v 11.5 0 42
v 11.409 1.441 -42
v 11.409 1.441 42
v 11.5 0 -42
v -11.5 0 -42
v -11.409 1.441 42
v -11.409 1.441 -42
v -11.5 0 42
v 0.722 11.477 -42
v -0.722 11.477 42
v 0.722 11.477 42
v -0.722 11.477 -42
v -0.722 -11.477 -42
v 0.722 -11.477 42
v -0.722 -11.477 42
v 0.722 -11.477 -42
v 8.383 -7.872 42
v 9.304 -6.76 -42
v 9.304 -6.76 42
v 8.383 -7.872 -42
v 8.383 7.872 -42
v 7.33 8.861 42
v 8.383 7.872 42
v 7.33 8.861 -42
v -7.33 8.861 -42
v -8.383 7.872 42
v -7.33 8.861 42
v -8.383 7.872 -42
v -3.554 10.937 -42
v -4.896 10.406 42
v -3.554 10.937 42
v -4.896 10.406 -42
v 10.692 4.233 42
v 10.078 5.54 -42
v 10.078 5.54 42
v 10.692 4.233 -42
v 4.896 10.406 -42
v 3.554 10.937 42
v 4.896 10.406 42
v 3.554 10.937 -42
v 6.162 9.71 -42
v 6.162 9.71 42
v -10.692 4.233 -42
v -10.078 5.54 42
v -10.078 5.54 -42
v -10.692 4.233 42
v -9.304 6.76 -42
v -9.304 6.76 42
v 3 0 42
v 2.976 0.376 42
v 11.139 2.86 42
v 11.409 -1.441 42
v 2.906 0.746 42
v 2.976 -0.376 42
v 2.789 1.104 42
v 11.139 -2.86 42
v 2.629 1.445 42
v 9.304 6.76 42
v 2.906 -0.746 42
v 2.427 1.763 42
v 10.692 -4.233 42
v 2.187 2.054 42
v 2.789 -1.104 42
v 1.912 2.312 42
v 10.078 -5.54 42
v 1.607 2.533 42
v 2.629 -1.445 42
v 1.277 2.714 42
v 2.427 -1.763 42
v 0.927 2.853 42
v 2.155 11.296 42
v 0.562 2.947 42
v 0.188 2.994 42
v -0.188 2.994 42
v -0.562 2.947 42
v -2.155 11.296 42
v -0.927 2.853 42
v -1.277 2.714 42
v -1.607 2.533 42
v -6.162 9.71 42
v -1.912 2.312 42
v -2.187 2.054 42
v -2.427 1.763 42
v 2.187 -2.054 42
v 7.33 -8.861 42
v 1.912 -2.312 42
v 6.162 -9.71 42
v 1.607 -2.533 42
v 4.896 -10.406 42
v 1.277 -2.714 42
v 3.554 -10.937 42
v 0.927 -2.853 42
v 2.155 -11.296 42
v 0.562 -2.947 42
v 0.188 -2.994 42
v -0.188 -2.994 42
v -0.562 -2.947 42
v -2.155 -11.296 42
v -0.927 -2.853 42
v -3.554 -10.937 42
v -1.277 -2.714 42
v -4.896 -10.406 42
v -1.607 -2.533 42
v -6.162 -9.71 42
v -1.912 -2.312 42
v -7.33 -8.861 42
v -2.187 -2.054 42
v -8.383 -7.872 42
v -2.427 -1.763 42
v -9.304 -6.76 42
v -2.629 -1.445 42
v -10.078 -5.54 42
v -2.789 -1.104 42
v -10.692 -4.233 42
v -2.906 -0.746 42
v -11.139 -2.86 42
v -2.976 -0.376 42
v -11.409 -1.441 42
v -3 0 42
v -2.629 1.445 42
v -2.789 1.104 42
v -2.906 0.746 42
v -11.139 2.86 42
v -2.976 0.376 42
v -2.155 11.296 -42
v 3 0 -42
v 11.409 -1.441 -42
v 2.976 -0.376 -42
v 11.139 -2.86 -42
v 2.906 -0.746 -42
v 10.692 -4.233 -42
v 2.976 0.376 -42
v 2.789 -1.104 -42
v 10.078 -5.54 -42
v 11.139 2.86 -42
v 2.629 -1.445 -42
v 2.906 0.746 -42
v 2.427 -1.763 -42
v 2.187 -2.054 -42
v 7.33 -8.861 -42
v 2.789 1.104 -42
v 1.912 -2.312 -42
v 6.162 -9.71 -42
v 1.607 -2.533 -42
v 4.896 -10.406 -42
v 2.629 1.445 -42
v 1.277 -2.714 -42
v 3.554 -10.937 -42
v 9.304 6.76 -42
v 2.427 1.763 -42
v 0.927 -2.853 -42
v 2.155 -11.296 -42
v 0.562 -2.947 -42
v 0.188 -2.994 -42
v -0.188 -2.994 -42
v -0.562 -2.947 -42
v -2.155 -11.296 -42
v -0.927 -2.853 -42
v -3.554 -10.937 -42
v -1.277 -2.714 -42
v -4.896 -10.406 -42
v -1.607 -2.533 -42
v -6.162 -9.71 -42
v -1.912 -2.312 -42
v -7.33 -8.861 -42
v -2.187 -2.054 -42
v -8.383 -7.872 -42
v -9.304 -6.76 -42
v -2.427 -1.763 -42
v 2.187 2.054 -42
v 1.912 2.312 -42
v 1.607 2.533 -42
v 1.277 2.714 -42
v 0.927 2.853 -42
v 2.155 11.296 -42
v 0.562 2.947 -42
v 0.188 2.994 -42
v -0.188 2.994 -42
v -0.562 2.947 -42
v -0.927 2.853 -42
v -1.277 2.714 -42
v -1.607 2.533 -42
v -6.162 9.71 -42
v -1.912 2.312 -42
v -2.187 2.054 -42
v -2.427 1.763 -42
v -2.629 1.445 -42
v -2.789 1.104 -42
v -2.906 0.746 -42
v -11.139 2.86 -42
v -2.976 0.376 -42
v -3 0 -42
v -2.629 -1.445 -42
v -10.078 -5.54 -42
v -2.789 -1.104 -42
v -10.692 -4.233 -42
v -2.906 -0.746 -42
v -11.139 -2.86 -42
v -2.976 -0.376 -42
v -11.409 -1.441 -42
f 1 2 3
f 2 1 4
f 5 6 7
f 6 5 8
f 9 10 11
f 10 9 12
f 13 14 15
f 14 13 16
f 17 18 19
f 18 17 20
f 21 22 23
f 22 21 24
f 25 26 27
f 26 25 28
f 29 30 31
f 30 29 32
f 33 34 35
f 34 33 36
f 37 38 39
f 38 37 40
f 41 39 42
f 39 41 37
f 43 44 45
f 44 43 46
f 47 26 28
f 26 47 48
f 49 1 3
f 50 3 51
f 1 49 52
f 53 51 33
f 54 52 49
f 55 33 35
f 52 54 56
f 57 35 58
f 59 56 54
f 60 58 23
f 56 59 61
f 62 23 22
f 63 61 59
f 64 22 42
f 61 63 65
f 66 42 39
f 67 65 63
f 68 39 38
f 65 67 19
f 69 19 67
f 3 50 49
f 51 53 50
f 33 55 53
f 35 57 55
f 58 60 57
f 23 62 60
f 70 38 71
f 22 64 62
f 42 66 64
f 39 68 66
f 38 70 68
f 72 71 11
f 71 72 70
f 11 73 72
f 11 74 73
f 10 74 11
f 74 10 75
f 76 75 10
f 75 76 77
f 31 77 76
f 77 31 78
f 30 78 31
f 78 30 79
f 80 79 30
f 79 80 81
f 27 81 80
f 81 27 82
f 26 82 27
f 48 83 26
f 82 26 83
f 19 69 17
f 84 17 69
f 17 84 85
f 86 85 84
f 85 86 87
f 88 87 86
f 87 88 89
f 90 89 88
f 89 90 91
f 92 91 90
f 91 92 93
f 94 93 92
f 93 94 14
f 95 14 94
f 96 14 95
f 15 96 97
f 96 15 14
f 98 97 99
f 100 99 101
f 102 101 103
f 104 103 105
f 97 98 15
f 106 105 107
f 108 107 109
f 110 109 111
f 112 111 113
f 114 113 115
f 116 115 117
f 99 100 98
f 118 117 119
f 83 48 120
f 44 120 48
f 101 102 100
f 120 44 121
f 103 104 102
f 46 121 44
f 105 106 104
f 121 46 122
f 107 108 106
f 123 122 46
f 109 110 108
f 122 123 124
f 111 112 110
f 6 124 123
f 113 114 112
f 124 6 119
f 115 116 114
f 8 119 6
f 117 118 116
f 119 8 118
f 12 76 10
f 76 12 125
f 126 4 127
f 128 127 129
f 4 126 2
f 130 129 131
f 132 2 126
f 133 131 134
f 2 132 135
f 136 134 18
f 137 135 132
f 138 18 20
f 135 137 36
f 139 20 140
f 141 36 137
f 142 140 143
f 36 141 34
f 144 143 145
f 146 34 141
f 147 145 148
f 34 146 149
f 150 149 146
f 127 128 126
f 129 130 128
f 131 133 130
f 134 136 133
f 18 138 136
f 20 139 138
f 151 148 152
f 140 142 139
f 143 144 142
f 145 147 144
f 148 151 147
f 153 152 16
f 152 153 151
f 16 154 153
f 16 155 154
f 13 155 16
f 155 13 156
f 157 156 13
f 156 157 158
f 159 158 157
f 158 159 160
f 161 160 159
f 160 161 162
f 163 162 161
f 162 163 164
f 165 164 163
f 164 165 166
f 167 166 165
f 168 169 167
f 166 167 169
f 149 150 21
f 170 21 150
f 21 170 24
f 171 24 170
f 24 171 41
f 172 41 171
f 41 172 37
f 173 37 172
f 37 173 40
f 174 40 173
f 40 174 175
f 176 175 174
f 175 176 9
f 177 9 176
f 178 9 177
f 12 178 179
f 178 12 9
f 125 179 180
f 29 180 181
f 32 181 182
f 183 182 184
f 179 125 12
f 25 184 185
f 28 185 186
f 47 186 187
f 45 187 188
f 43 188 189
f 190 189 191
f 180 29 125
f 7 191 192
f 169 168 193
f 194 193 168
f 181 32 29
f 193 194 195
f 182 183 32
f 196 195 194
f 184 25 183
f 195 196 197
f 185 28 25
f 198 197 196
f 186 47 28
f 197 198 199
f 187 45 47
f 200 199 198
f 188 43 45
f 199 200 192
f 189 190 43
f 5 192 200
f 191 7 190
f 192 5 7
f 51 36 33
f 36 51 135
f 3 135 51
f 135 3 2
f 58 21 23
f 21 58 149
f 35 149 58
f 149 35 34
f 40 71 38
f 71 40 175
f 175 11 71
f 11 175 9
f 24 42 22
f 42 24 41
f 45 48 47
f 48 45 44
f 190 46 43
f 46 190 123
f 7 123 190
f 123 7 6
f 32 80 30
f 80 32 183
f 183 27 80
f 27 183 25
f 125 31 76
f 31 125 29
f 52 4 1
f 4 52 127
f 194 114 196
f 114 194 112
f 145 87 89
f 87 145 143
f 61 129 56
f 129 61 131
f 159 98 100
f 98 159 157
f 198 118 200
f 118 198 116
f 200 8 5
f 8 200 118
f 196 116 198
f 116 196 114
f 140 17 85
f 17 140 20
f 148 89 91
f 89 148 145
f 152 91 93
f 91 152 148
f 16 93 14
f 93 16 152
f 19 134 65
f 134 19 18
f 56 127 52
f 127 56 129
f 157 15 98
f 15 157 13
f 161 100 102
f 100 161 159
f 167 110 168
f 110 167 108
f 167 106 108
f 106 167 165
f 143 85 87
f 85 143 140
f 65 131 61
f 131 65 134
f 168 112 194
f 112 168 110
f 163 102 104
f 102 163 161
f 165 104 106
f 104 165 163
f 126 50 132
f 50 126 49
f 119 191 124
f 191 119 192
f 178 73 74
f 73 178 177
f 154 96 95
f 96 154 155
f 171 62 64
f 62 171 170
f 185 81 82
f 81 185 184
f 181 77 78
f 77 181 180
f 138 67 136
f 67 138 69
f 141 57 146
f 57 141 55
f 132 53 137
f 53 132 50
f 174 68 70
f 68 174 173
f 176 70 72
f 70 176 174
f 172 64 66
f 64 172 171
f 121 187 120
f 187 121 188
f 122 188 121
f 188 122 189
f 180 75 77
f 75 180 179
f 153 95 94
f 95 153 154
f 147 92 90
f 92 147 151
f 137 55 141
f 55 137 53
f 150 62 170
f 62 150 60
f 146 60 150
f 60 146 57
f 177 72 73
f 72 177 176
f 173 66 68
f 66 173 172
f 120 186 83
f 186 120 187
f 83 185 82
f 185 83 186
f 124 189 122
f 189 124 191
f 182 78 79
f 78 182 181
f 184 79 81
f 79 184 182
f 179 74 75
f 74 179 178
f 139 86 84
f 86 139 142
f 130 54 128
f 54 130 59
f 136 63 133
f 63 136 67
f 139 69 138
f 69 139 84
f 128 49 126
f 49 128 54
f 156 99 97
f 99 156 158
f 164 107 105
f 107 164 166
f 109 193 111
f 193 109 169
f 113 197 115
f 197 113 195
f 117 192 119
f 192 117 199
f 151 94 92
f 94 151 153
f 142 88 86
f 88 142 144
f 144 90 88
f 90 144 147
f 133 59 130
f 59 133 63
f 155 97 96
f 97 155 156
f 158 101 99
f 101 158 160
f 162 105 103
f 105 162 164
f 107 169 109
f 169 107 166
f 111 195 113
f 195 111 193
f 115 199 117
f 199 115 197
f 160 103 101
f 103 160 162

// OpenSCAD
$fn = 50;


difference() {
	union() {
		translate(v = [0, 0, -42.0000000000]) {
			cylinder(h = 84, r = 11.5000000000);
		}
	}
	union() {
		translate(v = [0, 0, -100.0000000000]) {
			cylinder(h = 200, r = 3);
		}
	}
}
